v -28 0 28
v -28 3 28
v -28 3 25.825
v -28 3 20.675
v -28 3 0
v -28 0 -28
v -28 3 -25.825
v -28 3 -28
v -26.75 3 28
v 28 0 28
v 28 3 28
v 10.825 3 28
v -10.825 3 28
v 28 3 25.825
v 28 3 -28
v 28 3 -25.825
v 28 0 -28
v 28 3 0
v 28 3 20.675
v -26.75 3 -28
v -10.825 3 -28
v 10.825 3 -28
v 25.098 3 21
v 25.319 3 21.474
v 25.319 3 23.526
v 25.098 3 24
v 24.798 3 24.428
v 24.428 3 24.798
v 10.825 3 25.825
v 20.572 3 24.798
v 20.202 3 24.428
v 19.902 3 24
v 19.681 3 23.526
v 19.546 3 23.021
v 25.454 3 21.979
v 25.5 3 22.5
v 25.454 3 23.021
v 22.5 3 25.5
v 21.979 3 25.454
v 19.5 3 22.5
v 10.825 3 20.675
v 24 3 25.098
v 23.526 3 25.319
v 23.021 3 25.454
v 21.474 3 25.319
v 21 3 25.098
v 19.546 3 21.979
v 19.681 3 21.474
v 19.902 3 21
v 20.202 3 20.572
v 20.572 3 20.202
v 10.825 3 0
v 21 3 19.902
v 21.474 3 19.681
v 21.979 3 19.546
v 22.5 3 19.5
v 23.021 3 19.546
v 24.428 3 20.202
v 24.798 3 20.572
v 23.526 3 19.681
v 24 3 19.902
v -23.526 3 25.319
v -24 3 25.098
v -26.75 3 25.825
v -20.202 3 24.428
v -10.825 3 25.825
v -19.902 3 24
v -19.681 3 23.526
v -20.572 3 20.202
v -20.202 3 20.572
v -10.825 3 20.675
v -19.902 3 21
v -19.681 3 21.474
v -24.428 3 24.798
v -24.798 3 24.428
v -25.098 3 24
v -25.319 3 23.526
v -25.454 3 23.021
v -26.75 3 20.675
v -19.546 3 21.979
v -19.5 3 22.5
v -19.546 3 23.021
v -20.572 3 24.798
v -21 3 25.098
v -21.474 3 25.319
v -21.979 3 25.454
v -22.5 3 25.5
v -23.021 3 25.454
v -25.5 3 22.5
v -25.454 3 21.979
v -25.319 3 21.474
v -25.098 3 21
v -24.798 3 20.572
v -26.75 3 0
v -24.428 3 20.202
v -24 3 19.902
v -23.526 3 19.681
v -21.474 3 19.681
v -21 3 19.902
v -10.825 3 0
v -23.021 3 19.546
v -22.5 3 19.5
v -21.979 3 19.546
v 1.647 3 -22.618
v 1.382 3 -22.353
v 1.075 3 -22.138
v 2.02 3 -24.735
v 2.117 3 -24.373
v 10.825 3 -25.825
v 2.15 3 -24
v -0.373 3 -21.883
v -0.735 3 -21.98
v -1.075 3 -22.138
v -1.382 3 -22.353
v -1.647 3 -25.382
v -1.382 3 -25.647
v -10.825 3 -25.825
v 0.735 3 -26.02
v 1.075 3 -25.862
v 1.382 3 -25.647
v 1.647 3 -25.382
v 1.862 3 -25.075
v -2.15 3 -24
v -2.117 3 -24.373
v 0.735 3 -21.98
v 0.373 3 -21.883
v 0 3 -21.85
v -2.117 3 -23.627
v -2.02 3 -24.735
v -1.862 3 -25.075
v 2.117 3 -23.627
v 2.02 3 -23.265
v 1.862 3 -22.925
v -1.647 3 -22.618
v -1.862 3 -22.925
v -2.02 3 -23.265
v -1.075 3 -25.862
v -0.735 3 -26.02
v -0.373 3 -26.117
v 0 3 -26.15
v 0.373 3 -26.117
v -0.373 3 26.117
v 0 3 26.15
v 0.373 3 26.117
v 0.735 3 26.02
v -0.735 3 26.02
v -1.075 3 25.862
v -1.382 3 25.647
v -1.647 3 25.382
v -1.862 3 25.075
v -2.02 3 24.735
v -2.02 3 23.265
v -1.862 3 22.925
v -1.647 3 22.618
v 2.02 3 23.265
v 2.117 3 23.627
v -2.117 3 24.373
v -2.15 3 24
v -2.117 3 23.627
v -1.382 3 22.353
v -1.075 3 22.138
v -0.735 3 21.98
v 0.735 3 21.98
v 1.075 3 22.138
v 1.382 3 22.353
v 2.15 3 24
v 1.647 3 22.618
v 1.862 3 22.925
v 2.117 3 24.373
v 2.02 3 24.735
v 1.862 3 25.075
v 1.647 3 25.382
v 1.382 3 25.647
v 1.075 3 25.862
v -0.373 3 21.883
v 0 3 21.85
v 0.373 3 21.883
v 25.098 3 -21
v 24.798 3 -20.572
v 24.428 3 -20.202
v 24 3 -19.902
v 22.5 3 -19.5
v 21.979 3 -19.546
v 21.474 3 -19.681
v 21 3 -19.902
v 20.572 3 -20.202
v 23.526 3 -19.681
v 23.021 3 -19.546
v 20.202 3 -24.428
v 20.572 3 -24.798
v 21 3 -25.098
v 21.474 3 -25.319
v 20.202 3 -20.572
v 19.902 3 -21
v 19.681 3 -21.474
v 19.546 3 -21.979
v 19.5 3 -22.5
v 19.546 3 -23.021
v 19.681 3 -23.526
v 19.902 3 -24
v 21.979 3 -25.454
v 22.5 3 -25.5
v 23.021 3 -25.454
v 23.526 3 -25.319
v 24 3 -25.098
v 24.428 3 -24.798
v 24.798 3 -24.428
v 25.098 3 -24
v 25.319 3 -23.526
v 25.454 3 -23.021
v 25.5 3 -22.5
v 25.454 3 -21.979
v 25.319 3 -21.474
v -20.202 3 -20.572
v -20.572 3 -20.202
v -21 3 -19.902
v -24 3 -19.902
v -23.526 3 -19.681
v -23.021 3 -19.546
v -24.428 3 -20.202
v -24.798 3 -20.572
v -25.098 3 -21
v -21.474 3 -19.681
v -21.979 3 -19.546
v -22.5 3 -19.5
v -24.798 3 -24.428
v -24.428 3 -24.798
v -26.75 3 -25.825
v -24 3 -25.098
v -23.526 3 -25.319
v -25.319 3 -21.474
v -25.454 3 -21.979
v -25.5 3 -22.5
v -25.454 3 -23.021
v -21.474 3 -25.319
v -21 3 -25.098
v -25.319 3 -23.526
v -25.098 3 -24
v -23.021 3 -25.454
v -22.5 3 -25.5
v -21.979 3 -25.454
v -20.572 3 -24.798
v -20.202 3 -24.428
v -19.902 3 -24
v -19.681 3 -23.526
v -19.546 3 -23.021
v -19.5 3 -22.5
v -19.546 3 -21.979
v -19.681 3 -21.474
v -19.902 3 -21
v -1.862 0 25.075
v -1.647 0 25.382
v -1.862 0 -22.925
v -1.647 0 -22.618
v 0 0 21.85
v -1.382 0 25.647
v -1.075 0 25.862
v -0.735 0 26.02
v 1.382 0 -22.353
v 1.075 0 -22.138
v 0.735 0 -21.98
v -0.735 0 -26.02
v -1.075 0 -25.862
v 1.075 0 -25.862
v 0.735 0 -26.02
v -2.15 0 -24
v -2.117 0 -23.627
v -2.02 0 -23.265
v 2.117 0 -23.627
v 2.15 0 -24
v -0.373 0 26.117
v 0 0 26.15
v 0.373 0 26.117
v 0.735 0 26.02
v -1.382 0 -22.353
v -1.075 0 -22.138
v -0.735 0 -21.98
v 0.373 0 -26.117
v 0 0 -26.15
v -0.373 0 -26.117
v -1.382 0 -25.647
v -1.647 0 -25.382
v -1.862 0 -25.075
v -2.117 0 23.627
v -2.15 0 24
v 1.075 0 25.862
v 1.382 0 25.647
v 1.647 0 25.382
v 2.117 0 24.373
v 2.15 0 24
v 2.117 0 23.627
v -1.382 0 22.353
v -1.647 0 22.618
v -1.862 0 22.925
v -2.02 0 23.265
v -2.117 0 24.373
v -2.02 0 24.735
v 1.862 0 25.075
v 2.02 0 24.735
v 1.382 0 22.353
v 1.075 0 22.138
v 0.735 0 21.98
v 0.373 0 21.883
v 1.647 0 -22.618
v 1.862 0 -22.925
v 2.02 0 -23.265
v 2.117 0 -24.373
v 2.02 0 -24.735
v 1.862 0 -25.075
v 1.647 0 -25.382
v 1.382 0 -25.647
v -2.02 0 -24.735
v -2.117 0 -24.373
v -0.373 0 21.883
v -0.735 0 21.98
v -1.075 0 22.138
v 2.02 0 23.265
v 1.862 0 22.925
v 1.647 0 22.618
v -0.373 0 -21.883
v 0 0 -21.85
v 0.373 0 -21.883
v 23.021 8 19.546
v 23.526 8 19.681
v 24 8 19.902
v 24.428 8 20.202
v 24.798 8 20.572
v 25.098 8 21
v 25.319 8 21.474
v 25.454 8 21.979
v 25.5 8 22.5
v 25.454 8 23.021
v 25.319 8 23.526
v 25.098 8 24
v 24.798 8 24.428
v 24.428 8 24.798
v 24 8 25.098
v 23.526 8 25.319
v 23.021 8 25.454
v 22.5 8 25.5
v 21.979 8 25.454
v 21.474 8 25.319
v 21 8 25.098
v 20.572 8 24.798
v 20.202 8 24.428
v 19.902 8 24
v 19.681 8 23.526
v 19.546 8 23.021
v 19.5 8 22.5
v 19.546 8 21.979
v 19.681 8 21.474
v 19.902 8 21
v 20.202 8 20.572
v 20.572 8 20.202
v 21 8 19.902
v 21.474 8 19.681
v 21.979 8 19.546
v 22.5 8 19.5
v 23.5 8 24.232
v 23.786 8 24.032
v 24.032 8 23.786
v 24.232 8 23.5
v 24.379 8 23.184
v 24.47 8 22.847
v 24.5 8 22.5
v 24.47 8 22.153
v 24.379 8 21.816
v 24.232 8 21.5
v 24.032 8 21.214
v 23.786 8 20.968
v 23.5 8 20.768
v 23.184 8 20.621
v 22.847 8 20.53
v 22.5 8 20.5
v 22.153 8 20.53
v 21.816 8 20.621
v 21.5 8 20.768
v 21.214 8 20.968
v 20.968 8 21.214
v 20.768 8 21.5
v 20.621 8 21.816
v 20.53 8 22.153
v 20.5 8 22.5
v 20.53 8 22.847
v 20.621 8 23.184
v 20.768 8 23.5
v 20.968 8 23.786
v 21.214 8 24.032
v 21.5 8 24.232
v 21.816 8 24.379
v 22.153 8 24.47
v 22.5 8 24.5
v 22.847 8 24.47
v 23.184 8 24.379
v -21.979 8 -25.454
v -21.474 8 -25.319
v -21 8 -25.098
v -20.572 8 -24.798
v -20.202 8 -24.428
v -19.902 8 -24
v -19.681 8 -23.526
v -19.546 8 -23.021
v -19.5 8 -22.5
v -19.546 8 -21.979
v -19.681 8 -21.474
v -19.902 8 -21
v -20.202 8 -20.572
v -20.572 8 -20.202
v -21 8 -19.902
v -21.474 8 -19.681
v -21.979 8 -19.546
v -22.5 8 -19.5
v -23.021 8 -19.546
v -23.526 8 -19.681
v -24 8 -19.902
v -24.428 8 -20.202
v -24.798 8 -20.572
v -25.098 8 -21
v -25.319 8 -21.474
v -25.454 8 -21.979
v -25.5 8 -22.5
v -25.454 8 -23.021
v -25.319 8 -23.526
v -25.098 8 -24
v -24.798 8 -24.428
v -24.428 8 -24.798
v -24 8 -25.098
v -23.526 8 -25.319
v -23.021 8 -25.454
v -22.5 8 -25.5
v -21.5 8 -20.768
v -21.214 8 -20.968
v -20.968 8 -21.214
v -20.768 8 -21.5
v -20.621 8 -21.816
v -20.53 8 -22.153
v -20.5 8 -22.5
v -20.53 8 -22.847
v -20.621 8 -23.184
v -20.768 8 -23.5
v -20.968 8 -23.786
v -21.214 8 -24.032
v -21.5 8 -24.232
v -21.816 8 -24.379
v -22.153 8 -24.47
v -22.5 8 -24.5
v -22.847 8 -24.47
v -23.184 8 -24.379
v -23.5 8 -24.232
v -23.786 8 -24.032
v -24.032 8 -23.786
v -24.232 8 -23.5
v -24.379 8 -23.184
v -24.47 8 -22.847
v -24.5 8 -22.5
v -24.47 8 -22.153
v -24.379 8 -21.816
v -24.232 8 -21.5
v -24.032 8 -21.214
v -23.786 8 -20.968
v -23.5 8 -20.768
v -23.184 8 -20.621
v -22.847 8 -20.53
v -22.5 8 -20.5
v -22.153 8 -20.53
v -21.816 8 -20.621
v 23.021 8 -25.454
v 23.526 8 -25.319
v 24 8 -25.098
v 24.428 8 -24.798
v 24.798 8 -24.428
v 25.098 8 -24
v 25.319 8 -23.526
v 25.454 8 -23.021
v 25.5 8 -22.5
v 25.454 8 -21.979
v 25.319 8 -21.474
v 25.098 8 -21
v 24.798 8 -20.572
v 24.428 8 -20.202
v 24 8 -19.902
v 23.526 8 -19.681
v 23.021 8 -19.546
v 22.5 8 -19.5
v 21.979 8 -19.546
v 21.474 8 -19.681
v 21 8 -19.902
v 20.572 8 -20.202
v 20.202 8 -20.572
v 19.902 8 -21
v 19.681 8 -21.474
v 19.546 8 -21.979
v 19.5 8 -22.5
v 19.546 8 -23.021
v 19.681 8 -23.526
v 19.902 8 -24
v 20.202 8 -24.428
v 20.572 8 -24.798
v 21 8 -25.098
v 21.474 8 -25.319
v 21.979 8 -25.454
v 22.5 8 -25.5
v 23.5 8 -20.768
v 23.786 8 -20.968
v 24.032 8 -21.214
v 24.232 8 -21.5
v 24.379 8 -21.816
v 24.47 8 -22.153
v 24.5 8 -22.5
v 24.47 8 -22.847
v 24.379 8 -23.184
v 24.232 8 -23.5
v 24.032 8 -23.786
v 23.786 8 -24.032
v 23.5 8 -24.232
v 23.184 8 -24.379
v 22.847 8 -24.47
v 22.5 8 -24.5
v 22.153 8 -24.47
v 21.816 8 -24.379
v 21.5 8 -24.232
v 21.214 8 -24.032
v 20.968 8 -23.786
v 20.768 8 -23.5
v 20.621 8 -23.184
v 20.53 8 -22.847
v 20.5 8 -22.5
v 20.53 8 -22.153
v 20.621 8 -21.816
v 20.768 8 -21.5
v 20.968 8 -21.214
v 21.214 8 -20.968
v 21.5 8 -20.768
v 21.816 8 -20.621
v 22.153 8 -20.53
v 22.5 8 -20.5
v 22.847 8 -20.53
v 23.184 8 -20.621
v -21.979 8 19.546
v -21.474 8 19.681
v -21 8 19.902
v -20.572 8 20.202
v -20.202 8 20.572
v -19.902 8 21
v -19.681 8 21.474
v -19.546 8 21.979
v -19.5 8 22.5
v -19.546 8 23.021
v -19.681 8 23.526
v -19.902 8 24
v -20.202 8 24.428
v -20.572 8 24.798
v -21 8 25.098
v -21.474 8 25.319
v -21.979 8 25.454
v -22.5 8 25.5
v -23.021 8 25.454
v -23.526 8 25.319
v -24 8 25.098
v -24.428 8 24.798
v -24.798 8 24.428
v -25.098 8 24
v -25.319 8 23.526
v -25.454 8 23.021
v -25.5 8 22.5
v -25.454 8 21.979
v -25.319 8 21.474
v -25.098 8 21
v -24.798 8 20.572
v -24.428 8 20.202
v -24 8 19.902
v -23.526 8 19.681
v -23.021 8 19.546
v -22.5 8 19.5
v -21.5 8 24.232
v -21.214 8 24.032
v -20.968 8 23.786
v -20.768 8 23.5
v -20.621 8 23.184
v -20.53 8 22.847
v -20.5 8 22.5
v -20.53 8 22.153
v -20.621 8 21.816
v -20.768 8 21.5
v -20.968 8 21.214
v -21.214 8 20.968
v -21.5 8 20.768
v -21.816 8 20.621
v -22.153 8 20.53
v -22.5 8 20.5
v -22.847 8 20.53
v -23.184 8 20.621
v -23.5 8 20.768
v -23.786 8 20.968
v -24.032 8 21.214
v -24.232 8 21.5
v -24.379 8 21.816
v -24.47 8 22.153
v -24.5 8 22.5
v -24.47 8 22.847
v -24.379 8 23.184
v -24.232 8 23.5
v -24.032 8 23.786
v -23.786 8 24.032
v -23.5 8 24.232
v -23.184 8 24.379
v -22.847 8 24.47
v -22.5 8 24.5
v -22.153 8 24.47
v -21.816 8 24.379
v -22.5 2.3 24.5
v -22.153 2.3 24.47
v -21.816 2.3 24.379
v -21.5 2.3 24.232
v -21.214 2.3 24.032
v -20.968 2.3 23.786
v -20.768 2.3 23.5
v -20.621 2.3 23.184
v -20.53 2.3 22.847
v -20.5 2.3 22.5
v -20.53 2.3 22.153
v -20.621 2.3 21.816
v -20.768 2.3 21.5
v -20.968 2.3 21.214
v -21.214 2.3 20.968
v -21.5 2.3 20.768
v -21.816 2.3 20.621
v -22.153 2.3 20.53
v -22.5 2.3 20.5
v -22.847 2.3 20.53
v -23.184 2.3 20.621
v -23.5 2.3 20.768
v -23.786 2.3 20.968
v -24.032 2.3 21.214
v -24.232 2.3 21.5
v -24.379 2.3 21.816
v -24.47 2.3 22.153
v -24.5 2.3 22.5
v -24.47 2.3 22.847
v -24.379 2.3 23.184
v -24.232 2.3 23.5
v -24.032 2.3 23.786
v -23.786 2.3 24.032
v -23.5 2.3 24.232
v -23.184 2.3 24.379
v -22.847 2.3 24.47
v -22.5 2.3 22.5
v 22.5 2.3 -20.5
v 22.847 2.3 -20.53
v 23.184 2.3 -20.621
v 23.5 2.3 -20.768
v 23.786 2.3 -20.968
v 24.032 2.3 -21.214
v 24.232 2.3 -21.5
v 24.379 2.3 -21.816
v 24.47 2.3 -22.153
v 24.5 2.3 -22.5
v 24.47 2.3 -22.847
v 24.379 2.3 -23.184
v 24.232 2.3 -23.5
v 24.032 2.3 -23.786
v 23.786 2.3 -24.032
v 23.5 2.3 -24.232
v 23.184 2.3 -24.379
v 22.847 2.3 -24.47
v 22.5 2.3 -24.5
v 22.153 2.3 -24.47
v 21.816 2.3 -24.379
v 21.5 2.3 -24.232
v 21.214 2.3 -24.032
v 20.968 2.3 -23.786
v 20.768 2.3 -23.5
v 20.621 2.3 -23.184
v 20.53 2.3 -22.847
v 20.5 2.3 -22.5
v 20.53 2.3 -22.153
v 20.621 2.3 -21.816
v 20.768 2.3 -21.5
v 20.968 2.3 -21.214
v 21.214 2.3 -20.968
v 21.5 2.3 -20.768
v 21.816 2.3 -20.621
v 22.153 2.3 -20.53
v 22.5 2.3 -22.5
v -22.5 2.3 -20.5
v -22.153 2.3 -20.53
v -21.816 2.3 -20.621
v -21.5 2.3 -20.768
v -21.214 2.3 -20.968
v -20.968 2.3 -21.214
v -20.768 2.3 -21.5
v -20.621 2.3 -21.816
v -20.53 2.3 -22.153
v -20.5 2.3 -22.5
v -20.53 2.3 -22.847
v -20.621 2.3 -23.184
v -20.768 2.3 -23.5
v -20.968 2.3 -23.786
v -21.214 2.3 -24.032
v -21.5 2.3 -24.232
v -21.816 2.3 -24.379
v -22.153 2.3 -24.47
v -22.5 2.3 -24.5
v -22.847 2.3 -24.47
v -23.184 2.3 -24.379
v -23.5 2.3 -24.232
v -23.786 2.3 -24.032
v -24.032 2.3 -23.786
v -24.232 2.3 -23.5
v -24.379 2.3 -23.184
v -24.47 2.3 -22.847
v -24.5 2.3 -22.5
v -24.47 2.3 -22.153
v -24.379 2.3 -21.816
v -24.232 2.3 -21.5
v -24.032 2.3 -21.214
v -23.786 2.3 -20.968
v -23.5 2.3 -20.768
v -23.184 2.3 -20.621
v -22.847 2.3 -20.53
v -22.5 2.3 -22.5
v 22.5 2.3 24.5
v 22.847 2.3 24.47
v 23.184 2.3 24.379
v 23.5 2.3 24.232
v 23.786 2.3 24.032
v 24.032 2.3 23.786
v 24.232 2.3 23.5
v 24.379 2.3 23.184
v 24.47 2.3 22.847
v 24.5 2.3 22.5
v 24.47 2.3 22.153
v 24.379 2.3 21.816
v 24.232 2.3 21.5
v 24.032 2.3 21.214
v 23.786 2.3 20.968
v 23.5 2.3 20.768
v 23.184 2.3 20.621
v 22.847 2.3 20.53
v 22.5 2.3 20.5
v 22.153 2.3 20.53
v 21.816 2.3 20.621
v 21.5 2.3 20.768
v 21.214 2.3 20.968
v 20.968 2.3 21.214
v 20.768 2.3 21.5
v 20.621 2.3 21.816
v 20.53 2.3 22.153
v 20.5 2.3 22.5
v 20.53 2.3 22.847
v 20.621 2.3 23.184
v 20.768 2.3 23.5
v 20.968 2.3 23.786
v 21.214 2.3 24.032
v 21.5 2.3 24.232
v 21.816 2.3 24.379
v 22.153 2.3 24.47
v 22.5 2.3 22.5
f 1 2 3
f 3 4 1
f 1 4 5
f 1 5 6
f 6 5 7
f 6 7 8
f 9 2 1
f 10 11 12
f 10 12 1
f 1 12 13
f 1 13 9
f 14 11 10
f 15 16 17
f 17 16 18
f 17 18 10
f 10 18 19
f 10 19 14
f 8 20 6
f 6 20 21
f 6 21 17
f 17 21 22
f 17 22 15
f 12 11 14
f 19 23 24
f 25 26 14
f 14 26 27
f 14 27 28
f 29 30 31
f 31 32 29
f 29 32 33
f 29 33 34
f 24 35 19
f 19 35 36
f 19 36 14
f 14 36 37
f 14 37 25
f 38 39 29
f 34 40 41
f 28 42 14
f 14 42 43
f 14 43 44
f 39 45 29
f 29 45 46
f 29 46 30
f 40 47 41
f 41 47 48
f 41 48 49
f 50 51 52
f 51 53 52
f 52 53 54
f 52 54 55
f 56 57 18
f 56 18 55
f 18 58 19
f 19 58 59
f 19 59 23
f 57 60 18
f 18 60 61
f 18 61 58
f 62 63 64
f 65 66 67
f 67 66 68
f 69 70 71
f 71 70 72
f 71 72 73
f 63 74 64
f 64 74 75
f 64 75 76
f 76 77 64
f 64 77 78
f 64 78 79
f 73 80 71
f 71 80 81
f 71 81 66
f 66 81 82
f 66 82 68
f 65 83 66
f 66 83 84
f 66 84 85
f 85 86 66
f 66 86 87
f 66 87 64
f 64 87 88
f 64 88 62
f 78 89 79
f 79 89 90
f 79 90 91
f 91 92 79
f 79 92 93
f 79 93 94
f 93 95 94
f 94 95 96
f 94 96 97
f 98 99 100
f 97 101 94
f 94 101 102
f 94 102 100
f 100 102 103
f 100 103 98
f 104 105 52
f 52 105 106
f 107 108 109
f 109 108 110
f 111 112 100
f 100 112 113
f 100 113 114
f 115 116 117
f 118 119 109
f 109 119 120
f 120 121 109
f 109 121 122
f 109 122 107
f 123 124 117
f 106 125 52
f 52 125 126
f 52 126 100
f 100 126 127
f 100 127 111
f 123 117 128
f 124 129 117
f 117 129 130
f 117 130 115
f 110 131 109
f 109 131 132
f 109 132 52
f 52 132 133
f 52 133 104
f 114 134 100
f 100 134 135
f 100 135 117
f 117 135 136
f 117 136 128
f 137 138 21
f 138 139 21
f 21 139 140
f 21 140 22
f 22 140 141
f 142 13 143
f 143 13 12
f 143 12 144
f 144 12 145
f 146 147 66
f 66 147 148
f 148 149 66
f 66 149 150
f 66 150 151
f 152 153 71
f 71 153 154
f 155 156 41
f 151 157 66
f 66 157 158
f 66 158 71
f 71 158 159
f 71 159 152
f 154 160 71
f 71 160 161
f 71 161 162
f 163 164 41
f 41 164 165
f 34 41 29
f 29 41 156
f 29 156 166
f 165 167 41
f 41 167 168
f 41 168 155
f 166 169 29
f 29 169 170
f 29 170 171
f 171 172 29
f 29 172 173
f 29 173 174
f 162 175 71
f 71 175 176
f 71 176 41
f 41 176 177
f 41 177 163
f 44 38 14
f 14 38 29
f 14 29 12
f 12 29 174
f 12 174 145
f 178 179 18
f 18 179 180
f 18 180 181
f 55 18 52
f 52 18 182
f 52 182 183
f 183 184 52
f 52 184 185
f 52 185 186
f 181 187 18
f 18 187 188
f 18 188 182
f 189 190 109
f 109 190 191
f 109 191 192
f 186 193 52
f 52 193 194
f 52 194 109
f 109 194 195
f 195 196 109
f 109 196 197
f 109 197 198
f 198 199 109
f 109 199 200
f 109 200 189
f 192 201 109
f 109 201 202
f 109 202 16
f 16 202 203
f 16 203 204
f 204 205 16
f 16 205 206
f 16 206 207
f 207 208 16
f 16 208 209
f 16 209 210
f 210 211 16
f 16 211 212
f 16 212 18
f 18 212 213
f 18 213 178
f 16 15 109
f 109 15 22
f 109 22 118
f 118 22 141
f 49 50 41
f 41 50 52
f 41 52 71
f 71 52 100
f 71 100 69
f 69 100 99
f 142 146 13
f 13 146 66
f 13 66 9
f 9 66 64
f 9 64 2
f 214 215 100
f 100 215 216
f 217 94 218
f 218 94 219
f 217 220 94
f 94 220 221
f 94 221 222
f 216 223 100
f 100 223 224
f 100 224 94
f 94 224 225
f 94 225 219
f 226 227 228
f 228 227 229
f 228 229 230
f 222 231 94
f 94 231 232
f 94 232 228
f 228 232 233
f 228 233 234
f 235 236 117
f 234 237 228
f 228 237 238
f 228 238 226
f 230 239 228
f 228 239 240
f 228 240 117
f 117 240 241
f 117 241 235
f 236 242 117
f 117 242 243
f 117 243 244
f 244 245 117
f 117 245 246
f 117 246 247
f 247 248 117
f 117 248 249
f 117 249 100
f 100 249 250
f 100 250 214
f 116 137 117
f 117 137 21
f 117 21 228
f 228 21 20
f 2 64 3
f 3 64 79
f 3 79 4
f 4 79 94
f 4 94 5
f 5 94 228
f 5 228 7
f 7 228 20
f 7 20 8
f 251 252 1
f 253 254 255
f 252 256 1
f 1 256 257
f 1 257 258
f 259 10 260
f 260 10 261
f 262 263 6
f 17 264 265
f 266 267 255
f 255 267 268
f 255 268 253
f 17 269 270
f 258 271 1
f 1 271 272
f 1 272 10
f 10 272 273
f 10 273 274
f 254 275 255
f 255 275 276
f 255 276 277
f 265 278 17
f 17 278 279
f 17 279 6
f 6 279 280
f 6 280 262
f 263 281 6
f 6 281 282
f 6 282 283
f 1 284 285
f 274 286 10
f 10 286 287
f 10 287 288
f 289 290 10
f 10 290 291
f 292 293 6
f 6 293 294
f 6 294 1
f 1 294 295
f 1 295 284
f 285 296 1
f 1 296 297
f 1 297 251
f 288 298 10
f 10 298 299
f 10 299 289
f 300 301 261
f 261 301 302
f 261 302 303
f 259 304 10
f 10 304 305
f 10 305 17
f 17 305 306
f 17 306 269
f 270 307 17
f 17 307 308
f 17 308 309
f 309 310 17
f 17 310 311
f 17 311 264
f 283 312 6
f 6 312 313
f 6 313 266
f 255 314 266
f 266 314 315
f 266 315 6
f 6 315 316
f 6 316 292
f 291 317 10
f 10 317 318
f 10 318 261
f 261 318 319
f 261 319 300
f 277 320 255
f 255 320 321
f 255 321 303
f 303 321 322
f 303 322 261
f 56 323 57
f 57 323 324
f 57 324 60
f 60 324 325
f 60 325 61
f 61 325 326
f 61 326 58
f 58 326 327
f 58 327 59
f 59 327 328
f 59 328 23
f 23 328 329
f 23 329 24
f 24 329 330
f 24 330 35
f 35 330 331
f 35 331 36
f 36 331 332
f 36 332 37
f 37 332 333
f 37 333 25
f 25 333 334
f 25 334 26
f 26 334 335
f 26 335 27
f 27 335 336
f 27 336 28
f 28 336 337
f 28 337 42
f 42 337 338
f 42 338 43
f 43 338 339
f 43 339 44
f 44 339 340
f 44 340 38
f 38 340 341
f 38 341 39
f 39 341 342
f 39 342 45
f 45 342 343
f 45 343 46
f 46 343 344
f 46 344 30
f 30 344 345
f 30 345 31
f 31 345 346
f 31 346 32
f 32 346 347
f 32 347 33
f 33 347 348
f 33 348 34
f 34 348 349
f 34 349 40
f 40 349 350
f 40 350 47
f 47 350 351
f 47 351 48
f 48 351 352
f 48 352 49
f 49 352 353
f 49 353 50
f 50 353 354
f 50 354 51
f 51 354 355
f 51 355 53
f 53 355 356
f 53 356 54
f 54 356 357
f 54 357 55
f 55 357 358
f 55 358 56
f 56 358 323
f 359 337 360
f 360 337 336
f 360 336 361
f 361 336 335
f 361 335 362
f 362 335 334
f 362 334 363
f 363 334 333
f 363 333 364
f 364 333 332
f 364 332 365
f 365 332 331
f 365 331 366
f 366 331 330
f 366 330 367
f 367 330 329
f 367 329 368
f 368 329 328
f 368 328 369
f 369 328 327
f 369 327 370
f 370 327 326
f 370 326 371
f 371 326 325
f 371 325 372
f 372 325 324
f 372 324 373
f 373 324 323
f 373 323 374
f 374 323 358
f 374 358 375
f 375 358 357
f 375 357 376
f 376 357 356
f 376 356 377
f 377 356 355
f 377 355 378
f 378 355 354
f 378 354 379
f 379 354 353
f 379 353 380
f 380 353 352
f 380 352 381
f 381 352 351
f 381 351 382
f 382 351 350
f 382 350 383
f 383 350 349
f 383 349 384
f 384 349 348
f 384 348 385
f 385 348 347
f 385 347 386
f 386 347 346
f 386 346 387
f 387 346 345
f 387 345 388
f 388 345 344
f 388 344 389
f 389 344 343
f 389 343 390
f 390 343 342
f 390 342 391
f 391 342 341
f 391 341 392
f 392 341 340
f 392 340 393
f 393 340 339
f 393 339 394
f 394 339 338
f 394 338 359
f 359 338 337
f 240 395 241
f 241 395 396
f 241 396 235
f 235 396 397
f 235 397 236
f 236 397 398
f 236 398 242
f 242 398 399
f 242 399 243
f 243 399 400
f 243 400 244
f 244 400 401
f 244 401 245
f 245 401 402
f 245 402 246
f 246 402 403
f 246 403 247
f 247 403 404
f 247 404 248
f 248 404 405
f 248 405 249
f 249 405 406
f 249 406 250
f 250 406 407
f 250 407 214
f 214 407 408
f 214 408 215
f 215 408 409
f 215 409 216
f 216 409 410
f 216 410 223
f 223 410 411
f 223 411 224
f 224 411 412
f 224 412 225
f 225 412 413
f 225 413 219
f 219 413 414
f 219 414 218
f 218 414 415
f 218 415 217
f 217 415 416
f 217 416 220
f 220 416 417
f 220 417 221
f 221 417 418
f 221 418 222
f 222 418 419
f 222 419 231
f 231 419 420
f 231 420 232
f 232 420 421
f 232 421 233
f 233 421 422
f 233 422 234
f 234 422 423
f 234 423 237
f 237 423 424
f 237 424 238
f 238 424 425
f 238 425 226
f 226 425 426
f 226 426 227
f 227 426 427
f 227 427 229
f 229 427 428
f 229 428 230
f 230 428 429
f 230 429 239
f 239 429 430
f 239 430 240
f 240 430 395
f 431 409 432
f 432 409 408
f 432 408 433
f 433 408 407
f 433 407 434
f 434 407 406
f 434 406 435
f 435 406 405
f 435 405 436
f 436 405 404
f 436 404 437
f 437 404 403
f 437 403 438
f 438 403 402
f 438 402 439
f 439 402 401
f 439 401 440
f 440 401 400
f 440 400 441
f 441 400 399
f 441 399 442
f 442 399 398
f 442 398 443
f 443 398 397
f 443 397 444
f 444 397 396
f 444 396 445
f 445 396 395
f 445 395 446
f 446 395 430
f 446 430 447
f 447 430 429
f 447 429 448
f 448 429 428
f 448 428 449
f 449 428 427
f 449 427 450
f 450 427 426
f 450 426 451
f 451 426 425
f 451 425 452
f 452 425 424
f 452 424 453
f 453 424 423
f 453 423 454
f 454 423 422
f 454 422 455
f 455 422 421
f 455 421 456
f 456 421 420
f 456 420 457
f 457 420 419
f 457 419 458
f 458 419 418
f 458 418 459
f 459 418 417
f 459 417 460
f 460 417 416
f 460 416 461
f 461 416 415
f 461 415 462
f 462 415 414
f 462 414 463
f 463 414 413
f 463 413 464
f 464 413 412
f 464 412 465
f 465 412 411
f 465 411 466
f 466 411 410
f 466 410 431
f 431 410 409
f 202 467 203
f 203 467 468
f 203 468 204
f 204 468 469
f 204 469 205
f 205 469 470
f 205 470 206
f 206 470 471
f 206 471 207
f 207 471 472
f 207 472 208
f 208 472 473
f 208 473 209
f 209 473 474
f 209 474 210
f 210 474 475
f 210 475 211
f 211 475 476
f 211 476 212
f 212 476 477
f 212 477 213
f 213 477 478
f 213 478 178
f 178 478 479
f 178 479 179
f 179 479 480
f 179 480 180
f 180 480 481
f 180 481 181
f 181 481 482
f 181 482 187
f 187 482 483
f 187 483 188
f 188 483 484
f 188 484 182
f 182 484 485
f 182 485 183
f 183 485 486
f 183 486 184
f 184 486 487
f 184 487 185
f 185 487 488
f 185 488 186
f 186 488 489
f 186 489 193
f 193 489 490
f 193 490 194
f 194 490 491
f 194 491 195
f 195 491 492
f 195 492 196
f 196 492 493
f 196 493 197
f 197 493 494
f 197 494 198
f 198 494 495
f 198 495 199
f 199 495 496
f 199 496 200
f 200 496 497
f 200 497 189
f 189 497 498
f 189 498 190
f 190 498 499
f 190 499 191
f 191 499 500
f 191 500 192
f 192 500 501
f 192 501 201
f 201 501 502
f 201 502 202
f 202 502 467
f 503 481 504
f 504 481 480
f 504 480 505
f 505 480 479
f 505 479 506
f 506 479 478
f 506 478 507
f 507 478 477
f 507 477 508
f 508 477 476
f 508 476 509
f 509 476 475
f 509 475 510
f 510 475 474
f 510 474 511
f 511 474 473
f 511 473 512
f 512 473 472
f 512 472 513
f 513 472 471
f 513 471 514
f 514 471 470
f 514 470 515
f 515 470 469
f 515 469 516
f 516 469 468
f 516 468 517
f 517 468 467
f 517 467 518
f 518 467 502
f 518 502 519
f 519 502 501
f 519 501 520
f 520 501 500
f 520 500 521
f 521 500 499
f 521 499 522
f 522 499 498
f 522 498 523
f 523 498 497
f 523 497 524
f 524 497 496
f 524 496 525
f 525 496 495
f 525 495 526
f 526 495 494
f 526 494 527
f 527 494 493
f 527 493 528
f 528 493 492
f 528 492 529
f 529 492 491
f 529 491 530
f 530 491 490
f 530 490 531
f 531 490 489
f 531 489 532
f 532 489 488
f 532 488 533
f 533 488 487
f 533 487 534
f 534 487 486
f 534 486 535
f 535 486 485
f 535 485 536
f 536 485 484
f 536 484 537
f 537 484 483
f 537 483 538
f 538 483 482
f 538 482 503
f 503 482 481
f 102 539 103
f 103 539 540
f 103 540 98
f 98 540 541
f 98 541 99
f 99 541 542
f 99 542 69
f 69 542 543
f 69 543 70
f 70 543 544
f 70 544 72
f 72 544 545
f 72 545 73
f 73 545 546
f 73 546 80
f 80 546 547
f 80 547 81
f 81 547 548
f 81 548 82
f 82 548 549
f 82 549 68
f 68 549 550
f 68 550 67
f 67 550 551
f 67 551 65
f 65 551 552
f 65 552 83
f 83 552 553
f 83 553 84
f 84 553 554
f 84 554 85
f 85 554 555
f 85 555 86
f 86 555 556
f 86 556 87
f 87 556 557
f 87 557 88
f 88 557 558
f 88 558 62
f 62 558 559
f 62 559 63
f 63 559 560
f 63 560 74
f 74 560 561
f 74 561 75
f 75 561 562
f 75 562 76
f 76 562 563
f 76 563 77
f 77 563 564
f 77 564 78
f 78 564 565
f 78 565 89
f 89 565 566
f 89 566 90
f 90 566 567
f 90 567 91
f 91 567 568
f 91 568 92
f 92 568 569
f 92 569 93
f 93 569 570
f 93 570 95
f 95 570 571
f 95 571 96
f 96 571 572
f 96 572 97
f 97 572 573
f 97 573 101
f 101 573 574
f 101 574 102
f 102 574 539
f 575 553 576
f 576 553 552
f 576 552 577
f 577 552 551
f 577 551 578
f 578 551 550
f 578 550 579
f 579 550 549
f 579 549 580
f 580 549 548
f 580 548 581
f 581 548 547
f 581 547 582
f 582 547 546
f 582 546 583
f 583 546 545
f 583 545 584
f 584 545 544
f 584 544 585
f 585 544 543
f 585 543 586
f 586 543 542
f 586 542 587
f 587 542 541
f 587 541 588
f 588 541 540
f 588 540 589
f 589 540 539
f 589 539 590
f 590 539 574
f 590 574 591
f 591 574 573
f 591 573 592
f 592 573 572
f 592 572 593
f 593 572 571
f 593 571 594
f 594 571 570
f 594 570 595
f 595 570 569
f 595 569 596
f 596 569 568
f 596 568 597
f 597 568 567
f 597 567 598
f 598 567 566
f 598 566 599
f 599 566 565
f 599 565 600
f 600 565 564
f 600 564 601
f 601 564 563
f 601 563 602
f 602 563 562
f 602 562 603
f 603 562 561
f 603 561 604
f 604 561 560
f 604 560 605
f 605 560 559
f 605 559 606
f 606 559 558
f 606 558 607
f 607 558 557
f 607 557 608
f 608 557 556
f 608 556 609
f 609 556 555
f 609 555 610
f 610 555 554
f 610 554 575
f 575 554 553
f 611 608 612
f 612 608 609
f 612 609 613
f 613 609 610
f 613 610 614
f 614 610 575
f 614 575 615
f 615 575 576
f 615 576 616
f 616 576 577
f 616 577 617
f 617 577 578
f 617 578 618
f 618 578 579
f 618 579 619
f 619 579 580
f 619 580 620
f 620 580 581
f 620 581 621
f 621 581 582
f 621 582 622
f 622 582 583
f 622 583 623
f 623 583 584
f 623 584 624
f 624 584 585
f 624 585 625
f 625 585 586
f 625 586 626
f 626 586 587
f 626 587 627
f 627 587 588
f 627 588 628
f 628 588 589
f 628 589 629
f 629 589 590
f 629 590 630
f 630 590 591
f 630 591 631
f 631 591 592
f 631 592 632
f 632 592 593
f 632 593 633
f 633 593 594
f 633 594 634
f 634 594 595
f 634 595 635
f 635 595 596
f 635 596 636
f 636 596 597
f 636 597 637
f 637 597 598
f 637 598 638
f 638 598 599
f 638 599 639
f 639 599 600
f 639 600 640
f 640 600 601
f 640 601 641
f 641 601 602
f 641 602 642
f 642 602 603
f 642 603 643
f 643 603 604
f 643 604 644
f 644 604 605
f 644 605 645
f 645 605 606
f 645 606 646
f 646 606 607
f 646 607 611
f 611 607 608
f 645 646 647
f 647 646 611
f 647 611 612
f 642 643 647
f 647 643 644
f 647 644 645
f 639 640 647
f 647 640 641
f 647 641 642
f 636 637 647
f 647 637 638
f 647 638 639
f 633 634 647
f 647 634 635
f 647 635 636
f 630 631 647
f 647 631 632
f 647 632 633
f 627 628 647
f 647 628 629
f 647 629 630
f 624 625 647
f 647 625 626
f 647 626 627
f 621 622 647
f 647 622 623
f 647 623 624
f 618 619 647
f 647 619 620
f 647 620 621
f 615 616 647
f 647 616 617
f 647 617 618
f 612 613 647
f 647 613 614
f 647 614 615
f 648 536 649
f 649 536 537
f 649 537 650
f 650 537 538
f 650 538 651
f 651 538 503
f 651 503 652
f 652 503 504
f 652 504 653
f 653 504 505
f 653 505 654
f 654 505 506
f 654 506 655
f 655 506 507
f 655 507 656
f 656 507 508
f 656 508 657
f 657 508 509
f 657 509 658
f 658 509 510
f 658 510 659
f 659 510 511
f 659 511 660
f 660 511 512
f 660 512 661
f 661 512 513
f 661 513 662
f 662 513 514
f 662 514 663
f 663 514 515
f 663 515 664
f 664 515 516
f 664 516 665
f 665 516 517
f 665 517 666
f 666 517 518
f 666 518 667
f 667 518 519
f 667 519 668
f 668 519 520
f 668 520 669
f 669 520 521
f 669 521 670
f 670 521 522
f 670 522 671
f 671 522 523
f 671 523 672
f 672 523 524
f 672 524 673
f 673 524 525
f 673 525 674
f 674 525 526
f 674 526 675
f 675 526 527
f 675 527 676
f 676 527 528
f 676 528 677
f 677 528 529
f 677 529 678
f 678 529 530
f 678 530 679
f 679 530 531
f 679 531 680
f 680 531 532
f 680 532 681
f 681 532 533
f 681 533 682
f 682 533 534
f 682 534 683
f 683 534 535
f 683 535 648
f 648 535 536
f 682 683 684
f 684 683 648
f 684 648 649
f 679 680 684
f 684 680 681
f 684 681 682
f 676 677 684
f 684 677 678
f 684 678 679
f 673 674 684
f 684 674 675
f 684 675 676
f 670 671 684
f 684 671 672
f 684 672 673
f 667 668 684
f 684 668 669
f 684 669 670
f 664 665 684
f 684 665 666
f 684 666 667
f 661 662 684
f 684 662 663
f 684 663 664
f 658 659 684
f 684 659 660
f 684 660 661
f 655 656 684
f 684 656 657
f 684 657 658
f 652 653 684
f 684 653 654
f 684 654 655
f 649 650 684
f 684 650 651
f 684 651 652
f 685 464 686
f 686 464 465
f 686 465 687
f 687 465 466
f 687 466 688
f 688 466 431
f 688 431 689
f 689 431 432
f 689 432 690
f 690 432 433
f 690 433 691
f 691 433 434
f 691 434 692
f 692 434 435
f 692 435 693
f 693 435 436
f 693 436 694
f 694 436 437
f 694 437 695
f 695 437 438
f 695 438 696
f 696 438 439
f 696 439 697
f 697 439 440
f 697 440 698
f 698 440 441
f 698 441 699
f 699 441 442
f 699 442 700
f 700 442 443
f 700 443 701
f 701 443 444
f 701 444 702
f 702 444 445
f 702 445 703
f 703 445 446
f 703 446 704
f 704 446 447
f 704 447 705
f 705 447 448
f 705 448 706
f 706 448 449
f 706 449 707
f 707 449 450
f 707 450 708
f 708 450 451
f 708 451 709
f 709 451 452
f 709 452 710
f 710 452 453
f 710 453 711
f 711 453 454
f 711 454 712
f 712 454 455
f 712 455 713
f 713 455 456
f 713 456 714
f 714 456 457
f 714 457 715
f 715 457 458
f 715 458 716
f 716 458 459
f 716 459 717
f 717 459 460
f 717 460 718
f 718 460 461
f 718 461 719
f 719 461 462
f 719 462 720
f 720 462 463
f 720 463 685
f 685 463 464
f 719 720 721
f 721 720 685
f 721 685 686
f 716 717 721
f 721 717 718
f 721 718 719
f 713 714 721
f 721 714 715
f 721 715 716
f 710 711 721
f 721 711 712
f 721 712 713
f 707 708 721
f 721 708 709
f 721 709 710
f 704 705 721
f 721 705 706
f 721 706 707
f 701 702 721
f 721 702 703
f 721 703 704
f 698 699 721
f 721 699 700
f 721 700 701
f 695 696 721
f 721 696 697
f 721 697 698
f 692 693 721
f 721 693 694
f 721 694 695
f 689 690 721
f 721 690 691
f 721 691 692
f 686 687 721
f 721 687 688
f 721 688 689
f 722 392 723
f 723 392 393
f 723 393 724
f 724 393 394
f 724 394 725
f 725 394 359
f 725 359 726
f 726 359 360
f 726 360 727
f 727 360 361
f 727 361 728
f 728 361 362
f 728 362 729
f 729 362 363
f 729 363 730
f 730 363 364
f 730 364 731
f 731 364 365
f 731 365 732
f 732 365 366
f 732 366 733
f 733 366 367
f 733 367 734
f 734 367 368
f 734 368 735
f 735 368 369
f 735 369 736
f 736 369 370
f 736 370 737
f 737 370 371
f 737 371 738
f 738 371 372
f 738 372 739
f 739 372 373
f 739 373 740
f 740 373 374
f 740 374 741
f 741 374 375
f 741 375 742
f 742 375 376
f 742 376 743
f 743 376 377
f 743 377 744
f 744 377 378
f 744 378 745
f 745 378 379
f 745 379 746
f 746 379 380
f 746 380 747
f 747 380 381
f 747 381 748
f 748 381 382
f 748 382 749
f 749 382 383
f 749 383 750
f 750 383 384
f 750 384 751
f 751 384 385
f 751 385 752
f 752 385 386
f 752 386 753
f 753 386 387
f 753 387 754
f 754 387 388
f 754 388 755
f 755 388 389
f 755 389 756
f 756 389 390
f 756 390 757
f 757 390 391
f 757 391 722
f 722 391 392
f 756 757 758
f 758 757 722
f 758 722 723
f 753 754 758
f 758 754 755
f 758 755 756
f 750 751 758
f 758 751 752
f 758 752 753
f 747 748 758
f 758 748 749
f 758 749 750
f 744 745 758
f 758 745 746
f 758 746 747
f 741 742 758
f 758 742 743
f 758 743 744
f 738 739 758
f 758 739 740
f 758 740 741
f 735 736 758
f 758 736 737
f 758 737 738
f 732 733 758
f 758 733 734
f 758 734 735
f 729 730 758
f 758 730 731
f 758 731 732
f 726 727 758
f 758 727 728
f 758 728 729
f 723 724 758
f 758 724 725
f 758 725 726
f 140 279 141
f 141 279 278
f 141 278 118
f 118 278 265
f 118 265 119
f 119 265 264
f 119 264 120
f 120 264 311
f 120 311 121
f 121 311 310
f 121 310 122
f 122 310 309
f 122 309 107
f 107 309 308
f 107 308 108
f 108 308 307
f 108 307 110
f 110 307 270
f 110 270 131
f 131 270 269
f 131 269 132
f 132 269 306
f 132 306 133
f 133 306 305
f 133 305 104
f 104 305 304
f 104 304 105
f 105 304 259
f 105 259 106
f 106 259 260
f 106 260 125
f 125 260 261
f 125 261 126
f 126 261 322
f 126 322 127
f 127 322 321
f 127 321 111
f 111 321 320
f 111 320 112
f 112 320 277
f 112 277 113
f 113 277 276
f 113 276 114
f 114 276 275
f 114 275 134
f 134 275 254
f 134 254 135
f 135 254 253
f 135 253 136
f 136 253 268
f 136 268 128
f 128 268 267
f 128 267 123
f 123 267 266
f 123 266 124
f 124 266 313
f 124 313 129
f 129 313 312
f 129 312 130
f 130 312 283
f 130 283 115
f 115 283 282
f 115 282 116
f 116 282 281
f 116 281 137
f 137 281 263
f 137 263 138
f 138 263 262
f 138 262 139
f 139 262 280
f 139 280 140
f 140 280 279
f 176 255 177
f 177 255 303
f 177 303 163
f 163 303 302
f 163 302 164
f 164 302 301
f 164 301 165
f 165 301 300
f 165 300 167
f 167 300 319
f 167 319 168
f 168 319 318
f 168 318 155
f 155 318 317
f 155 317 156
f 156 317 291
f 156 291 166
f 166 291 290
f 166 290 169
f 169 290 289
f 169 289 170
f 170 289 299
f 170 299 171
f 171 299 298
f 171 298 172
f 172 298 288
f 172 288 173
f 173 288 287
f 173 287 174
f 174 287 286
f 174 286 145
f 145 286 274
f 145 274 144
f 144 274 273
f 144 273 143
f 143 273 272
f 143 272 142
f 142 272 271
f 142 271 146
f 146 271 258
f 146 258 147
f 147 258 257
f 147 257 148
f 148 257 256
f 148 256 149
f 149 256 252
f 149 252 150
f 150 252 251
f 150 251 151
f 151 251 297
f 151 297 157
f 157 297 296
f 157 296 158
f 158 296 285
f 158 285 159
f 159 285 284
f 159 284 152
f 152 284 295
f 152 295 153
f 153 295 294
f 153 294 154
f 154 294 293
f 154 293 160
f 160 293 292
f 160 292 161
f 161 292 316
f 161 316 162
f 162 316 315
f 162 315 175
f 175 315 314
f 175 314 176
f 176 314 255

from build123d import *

# Parameters (mm, degrees)
SK_PLATE_W           = 56
SK_PLATE_H           = 56
EX_PLATE_DEPTH       = 3
SK_STANDOFFS_R       = 3
EX_STANDOFFS_DEPTH   = 5
SK_INSERTS_M3_R      = 2
CUT_INSERTS_M3_DEPTH = 5.7
SK_PANHOLES_R        = 2.15
CUT_PANHOLES_DEPTH   = 3


with BuildPart() as part:
    # SK_Plate → EX_Plate (new body)
    with BuildSketch(Plane(origin=(0, 0, 0), x_dir=(1, 0, 0), z_dir=(0, 1, 0))):
        Rectangle(SK_PLATE_W, SK_PLATE_H)
    extrude(amount=EX_PLATE_DEPTH)

    # SK_Standoffs → EX_Standoffs (add)
    with BuildSketch(Plane(origin=(0, 3, 0), x_dir=(1, 0, 0), z_dir=(0, 1, 0))):
        with Locations((22.5, -22.5)):
            Circle(SK_STANDOFFS_R)
        with Locations((-22.5, -22.5)):
            Circle(SK_STANDOFFS_R)
        with Locations((22.5, 22.5)):
            Circle(SK_STANDOFFS_R)
        with Locations((-22.5, 22.5)):
            Circle(SK_STANDOFFS_R)
    extrude(amount=EX_STANDOFFS_DEPTH)

    # SK_Inserts_M3 → CUT_Inserts_M3 (cut)
    with BuildSketch(Plane(origin=(0, 8, 0), x_dir=(1, 0, 0), z_dir=(0, 1, 0))):
        with Locations((22.5, -22.5)):
            Circle(SK_INSERTS_M3_R)
        with Locations((-22.5, -22.5)):
            Circle(SK_INSERTS_M3_R)
        with Locations((22.5, 22.5)):
            Circle(SK_INSERTS_M3_R)
        with Locations((-22.5, 22.5)):
            Circle(SK_INSERTS_M3_R)
    extrude(amount=-CUT_INSERTS_M3_DEPTH, mode=Mode.SUBTRACT)

    # SK_PanHoles → CUT_PanHoles (cut)
    with BuildSketch(Plane(origin=(0, 0, 0), x_dir=(1, 0, 0), z_dir=(0, 1, 0))):
        with Locations((0, -24)):
            Circle(SK_PANHOLES_R)
        with Locations((0, 24)):
            Circle(SK_PANHOLES_R)
    extrude(amount=CUT_PANHOLES_DEPTH, mode=Mode.SUBTRACT)


solid = part.part
